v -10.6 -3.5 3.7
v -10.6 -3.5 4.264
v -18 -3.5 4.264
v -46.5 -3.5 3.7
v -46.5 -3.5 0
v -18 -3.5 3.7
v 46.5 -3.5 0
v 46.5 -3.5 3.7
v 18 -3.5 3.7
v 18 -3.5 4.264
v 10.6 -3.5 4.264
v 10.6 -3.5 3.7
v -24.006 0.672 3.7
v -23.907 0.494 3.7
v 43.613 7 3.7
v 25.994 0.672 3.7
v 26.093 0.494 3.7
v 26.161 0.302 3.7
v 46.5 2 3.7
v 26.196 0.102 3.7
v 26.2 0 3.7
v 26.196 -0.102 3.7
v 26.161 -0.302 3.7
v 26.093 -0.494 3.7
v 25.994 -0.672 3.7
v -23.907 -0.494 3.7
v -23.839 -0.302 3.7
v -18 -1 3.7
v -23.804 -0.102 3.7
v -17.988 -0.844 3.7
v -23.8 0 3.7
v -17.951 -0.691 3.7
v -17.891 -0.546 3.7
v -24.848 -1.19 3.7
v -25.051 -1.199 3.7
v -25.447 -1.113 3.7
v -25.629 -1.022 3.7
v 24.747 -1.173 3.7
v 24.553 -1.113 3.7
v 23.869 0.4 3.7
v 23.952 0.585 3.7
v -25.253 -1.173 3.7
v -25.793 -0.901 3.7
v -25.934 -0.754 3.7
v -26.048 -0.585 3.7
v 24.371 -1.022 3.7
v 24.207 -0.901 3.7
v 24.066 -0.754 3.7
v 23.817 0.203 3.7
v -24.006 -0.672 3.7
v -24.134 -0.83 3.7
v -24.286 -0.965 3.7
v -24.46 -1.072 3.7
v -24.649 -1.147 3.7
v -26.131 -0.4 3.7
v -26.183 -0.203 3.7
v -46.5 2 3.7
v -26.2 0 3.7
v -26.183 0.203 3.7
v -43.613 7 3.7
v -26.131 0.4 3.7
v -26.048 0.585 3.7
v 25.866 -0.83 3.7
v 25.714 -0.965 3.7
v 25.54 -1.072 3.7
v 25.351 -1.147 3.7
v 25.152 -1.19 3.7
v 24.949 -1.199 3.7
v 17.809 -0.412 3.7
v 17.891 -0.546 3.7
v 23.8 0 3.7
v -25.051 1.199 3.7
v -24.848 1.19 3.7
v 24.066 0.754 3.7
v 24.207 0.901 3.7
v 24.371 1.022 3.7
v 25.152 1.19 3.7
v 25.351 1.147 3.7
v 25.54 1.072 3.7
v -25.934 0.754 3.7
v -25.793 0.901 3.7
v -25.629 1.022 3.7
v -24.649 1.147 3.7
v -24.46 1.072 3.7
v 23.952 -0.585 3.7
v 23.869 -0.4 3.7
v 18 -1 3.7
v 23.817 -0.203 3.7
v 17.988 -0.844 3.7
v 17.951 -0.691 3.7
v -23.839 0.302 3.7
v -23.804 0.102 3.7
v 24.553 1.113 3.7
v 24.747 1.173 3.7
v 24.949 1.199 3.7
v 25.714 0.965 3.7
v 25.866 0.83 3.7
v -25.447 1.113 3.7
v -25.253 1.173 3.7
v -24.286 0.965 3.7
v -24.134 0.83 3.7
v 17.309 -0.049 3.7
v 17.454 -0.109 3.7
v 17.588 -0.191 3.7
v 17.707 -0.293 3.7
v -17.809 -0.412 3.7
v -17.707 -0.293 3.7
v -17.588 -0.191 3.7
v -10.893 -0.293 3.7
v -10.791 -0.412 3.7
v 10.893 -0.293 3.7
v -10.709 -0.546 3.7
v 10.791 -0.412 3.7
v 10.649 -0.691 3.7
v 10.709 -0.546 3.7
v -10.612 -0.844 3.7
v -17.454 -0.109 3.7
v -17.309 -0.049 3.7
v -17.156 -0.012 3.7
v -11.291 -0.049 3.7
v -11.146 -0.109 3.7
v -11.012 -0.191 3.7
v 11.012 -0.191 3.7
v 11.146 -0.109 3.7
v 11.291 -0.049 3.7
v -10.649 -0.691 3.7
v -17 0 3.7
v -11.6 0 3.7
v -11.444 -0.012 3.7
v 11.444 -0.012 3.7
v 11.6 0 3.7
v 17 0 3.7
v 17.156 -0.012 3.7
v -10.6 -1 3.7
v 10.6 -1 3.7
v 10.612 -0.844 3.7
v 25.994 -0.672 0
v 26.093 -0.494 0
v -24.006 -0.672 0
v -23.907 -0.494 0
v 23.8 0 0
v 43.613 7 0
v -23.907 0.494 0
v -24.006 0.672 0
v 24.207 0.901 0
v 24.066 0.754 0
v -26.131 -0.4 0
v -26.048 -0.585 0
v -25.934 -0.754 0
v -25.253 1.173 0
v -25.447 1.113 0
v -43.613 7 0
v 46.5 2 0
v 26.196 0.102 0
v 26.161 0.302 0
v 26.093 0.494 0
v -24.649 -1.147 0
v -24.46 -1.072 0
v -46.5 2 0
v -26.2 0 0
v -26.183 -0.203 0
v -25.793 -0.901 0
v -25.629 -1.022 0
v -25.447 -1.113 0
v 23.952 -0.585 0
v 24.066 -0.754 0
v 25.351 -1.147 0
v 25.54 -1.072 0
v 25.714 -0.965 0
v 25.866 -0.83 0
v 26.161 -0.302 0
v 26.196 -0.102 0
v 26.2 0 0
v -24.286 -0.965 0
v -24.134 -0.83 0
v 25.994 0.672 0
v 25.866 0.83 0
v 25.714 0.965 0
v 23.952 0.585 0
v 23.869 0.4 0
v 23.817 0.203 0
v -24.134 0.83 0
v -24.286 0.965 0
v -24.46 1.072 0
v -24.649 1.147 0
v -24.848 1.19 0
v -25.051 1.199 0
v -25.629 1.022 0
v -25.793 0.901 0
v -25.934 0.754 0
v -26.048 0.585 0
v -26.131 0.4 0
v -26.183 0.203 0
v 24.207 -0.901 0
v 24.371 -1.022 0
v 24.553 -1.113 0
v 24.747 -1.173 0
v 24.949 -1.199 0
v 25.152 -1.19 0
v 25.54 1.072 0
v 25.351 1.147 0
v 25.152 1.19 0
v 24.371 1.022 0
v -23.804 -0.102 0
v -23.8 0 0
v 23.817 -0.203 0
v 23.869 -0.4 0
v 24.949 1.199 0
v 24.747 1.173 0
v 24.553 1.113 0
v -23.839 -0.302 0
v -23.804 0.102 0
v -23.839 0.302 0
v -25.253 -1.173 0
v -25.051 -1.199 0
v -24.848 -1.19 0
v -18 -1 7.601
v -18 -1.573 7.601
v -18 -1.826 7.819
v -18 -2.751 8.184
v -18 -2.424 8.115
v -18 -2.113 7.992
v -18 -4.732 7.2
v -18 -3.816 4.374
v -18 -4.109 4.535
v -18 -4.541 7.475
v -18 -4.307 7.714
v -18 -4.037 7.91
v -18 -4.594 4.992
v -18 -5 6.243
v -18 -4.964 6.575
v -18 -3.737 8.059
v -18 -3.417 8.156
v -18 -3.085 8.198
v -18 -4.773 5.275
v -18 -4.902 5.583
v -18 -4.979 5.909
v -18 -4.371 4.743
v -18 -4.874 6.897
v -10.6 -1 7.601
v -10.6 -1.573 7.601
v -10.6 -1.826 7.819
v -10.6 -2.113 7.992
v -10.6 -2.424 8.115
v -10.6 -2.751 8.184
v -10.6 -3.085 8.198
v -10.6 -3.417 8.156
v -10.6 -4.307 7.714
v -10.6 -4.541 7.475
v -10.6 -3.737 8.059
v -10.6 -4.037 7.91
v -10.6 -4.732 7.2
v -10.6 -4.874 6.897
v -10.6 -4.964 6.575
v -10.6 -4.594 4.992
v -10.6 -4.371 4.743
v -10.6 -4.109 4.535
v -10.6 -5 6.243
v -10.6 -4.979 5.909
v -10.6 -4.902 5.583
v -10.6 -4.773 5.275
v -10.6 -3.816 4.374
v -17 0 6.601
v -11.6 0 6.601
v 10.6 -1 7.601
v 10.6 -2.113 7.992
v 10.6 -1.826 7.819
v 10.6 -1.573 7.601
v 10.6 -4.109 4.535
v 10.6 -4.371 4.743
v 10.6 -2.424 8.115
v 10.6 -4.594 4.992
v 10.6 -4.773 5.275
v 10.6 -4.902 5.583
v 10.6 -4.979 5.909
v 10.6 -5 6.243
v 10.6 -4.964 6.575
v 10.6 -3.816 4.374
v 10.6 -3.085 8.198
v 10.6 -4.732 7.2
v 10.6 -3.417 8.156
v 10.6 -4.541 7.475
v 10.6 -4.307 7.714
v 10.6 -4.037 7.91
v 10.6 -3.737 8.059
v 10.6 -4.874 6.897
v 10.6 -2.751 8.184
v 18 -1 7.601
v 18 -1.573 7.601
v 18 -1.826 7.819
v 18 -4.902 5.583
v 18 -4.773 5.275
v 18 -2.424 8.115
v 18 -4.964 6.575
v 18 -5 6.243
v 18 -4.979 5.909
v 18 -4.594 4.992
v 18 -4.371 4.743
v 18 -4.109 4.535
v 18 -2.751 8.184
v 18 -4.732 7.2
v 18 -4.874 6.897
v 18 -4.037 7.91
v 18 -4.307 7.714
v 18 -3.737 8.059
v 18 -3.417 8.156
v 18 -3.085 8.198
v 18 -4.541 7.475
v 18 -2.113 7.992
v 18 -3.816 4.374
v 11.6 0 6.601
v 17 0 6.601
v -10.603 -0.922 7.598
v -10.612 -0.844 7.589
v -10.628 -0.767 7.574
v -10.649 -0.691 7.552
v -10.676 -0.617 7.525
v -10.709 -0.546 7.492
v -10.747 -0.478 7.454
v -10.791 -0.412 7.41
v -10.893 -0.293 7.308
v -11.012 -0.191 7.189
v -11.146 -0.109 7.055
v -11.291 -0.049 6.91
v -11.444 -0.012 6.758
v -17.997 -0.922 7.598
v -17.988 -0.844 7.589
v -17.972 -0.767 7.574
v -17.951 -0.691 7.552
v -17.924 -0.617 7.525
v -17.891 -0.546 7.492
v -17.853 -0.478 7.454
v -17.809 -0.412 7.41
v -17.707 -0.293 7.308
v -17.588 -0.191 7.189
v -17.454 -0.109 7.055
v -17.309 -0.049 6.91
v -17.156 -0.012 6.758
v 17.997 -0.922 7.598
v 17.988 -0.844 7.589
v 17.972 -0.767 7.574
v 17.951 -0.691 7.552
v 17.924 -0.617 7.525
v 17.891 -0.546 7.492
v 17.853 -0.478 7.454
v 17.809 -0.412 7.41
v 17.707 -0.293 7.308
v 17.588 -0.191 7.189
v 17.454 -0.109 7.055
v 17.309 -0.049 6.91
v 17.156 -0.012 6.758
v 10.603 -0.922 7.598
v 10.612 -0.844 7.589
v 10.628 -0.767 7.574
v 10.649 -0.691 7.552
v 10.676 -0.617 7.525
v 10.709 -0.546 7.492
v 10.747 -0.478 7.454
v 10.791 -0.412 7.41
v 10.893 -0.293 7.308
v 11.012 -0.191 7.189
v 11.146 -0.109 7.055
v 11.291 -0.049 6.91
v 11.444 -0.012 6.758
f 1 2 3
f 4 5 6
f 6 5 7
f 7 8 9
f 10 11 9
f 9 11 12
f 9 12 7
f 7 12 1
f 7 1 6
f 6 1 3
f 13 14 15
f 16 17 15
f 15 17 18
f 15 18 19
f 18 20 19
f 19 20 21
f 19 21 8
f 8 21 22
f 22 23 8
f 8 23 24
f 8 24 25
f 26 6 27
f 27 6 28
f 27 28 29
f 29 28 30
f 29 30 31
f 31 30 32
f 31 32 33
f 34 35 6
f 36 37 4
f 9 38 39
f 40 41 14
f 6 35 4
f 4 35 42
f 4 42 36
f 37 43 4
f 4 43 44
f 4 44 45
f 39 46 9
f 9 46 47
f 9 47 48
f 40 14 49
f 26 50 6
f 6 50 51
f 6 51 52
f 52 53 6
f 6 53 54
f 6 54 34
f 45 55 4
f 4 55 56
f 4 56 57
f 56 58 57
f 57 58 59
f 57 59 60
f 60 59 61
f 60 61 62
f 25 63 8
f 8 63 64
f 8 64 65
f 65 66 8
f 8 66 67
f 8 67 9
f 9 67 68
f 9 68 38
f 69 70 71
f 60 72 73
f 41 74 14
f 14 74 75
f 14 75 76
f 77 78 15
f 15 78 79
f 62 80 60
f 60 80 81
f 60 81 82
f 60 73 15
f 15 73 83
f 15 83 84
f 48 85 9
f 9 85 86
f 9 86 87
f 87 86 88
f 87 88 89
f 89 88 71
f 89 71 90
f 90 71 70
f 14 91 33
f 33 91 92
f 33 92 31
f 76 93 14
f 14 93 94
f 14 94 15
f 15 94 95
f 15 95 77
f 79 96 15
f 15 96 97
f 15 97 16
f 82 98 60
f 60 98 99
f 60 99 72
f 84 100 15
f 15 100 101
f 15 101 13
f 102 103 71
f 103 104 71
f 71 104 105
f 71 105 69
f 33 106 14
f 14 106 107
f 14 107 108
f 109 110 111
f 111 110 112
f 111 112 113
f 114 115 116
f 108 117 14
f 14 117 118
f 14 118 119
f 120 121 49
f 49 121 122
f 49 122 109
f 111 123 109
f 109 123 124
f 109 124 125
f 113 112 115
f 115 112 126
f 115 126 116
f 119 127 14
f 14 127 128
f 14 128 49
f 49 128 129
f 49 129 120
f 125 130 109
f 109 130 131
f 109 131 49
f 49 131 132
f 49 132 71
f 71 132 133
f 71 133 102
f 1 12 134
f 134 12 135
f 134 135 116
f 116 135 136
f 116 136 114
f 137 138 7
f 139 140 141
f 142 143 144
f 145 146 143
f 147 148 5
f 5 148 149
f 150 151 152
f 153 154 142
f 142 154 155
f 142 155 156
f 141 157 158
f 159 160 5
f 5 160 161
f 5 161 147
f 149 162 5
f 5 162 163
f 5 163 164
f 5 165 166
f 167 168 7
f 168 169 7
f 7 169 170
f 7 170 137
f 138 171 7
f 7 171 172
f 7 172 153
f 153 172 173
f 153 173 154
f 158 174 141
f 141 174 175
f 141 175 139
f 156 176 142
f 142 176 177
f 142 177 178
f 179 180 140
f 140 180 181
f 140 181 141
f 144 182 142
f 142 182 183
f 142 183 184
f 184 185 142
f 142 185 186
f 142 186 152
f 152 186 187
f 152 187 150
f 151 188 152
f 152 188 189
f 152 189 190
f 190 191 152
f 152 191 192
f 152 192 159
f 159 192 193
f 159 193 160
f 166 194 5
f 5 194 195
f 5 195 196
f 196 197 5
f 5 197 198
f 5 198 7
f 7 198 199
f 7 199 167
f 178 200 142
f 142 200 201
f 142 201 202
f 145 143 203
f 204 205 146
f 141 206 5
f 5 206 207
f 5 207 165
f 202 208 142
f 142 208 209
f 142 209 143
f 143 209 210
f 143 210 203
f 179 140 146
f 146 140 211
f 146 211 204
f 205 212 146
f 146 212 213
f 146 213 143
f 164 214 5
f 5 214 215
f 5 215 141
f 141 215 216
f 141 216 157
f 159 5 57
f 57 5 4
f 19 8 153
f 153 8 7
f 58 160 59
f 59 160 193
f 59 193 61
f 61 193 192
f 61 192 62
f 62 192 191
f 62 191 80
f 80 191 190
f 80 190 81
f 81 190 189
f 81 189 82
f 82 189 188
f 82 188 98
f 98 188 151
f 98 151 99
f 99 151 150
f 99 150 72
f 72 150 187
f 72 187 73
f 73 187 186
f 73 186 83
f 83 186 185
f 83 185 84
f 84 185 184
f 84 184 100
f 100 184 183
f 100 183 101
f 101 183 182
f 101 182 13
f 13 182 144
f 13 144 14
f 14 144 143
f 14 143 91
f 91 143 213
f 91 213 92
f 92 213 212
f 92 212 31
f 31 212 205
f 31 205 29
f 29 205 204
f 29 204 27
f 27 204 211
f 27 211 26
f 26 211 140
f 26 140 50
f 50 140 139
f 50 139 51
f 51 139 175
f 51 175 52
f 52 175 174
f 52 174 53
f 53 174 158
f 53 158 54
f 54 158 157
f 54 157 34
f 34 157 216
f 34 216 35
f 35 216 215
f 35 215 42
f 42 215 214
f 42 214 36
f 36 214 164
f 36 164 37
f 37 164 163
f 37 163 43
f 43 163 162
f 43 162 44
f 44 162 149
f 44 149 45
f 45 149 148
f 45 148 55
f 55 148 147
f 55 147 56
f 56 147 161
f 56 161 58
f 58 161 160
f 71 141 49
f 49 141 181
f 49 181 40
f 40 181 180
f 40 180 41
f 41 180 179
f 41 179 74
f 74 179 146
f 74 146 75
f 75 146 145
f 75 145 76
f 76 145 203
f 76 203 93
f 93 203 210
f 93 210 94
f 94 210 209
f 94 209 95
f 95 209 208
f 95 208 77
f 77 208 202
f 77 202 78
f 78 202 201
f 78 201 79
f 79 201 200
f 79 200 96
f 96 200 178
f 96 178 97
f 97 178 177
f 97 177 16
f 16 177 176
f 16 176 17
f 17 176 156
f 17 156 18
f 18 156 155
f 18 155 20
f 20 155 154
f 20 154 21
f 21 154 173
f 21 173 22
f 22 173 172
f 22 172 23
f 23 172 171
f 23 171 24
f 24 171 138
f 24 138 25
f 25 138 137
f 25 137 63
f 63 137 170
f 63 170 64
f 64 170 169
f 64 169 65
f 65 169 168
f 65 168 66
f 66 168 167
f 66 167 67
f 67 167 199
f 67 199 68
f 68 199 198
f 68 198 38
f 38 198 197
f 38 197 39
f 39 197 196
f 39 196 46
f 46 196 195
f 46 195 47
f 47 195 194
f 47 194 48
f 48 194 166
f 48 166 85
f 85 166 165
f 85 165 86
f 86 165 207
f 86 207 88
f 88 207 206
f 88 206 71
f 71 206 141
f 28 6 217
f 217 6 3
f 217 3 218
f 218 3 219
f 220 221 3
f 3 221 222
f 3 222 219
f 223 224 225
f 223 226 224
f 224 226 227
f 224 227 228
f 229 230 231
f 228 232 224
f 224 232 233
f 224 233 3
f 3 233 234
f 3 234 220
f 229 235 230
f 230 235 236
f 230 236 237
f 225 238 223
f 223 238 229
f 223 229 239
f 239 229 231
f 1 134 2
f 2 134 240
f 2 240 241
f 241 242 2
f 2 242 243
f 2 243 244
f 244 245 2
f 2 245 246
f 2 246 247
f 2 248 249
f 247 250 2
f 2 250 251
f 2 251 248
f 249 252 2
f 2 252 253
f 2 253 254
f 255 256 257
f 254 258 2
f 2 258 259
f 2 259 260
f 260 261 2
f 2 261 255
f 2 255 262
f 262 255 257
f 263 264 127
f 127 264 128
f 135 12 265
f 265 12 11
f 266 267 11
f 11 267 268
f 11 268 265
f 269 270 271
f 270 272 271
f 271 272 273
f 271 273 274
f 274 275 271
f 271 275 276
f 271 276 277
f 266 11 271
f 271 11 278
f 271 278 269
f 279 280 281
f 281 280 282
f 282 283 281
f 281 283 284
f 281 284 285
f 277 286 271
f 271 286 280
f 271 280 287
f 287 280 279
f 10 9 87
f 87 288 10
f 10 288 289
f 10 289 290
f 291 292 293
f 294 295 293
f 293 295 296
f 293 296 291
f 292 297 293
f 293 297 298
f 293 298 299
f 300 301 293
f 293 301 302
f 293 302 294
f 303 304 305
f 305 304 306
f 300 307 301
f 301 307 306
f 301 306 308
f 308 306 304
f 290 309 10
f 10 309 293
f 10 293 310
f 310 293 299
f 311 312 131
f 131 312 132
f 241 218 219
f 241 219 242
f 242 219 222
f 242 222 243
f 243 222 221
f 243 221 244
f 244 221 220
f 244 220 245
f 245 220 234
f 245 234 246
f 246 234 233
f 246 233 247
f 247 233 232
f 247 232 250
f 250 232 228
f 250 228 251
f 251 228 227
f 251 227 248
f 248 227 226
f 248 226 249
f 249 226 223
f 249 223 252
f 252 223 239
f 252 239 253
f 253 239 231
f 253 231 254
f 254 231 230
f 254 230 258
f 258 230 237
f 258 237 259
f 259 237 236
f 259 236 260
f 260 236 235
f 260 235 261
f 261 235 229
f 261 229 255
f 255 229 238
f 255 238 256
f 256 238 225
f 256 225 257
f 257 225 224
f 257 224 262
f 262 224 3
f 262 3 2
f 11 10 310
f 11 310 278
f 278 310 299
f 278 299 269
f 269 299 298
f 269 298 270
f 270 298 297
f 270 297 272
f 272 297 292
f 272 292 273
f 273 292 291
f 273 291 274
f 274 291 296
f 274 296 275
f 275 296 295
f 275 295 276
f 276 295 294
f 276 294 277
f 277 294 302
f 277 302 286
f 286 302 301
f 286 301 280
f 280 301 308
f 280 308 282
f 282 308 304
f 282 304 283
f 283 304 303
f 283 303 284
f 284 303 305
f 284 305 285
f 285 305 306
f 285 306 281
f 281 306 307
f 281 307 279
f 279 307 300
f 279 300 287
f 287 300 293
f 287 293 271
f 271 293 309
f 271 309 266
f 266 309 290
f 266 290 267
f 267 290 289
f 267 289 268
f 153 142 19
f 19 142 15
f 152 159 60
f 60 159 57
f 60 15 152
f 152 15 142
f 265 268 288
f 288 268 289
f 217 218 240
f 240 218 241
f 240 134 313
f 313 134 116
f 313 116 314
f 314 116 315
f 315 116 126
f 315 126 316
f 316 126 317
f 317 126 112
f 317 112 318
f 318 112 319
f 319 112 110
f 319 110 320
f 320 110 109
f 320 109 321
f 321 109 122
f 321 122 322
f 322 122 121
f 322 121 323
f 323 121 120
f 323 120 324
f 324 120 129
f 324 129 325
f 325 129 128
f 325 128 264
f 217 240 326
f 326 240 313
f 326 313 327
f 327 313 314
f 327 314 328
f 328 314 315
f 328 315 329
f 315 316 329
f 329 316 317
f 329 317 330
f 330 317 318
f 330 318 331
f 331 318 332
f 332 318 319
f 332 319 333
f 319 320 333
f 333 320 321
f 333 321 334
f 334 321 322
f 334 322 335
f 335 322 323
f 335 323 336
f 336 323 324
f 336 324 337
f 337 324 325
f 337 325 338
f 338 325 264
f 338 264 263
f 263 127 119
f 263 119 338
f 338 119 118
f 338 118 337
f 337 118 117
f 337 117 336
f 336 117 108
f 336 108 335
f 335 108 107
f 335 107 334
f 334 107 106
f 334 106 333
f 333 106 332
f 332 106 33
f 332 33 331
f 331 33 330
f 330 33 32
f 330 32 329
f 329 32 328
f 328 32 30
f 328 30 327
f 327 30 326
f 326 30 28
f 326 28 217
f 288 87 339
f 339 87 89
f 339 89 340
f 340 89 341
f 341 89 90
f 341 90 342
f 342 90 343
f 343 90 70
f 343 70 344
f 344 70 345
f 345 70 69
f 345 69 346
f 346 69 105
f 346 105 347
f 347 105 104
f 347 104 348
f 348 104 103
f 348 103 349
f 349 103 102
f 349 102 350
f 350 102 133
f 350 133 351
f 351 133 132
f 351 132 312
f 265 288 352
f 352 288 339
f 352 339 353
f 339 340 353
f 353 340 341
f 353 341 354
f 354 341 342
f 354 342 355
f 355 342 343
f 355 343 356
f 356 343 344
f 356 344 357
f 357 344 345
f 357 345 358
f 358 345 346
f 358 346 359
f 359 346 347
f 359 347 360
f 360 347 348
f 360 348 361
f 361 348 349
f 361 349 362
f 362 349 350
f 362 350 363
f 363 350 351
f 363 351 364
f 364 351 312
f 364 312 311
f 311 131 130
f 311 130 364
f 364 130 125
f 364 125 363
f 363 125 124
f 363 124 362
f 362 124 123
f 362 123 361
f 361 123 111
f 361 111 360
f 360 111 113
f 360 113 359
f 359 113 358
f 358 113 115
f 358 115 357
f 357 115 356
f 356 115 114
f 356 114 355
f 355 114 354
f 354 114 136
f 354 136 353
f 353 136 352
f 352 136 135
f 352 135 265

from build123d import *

# Parameters (mm, degrees)
SKETCH_1_W          = 93
SKETCH_1_H          = 7
SKETCH_1_R          = 1.2
EXTRUDE_1_DEPTH     = 3.7
SKETCH_2_W          = 7.4
SKETCH_2_H          = 3.5
EXTRUDE_2_DEPTH     = 5
EXTRUDE_3_DEPTH     = 7.4
EXTRUDE_START       = -7.4
EXTRUDE_4_DEPTH     = 7.4
CUT_EXTRUDE_1_DEPTH = 48.03456176
EXTRUDE_5_DEPTH     = 3.7
CUT_EXTRUDE_2_DEPTH = 66.459453099
FILLET_1_R          = 1


with BuildPart() as part:
    # ｽｹｯﾁ1 → ﾎﾞｽ - 押し出し1 (new body)
    with BuildSketch(Plane.XY):
        Rectangle(SKETCH_1_W, SKETCH_1_H)
        with Locations((-25, 0)):
            Circle(SKETCH_1_R, mode=Mode.SUBTRACT)
        with Locations((25, 0)):
            Circle(SKETCH_1_R, mode=Mode.SUBTRACT)
    extrude(amount=EXTRUDE_1_DEPTH)

    # ｽｹｯﾁ2 → ﾎﾞｽ - 押し出し2 (add)
    with BuildSketch(Plane.XY.offset(3.7)):
        with Locations((-14.3, -1.75)):
            Rectangle(SKETCH_2_W, SKETCH_2_H)
        with Locations((14.3, -1.75)):
            Rectangle(SKETCH_2_W, SKETCH_2_H)
    extrude(amount=EXTRUDE_2_DEPTH)

    # ｽｹｯﾁ3 → ﾎﾞｽ - 押し出し3 (add)
    with BuildSketch(Plane.ZY.offset(18)):
        with BuildLine():
            Line((4.263508327, -3.5), (8.136491673, -3.5))
            ThreePointArc((8.136491673, -3.5), (6.2, -5), (4.263508327, -3.5))
        make_face()
    extrude(amount=-EXTRUDE_3_DEPTH)

    # ｽｹｯﾁ4 → ﾎﾞｽ - 押し出し4 (add)
    with BuildSketch(Plane(origin=(18, 0, 0), x_dir=(0, 0, -1), z_dir=(1, 0, 0)).offset(EXTRUDE_START)):
        with BuildLine():
            Line((-8.136491673, -3.5), (-4.263508327, -3.5))
            ThreePointArc((-4.263508327, -3.5), (-6.2, -5), (-8.136491673, -3.5))
        make_face()
    extrude(amount=EXTRUDE_4_DEPTH)

    # ｽｹｯﾁ5 → ｶｯﾄ - 押し出し1 (cut, through all)
    with BuildSketch(Plane.XY.offset(3.7)):
        Polygon((-46.5, 2), (-45.633974596, 3.5), (-46.5, 3.5), align=None)
        Polygon((46.5, 3.5), (46.5, 2), (45.633974596, 3.5), align=None)
    extrude(amount=-CUT_EXTRUDE_1_DEPTH, mode=Mode.SUBTRACT)

    # ｽｹｯﾁ6 → ﾎﾞｽ - 押し出し5 (add)
    with BuildSketch(Plane.XY.offset(3.7)):
        Polygon((-45.633974596, 3.5), (45.633974596, 3.5), (43.613248654, 7), (-43.613248654, 7), align=None)
    extrude(amount=-EXTRUDE_5_DEPTH)

    # ｽｹｯﾁ7 → ｶｯﾄ - 押し出し2 (cut, through all)
    with BuildSketch(Plane(origin=(18, 0, 0), x_dir=(0, 0, -1), z_dir=(1, 0, 0))):
        with BuildLine():
            Line((-7.601258538, -1.572949017), (-7.601258538, 0))
            Line((-7.601258538, 0), (-8.7, 0))
            Line((-8.7, 0), (-8.7, -3.5))
            Line((-8.7, -3.5), (-8.136491673, -3.5))
            ThreePointArc((-8.136491673, -3.5), (-8.127050983, -2.464766865), (-7.601258538, -1.572949017))
        make_face()
    extrude(amount=-CUT_EXTRUDE_2_DEPTH, mode=Mode.SUBTRACT)

    # ﾌｨﾚｯﾄ1
    fillet_1_edges = [part.edges().sort_by_distance(p)[0] for p in [
        (10.6, 0, 5.650629269),
        (18, 0, 5.650629269),
        (-18, 0, 5.650629269),
        (-10.6, 0, 5.650629269),
        (-14.3, 0, 7.601258538),
        (14.3, 0, 7.601258538),
    ]]
    fillet(fillet_1_edges, radius=FILLET_1_R)


solid = part.part
